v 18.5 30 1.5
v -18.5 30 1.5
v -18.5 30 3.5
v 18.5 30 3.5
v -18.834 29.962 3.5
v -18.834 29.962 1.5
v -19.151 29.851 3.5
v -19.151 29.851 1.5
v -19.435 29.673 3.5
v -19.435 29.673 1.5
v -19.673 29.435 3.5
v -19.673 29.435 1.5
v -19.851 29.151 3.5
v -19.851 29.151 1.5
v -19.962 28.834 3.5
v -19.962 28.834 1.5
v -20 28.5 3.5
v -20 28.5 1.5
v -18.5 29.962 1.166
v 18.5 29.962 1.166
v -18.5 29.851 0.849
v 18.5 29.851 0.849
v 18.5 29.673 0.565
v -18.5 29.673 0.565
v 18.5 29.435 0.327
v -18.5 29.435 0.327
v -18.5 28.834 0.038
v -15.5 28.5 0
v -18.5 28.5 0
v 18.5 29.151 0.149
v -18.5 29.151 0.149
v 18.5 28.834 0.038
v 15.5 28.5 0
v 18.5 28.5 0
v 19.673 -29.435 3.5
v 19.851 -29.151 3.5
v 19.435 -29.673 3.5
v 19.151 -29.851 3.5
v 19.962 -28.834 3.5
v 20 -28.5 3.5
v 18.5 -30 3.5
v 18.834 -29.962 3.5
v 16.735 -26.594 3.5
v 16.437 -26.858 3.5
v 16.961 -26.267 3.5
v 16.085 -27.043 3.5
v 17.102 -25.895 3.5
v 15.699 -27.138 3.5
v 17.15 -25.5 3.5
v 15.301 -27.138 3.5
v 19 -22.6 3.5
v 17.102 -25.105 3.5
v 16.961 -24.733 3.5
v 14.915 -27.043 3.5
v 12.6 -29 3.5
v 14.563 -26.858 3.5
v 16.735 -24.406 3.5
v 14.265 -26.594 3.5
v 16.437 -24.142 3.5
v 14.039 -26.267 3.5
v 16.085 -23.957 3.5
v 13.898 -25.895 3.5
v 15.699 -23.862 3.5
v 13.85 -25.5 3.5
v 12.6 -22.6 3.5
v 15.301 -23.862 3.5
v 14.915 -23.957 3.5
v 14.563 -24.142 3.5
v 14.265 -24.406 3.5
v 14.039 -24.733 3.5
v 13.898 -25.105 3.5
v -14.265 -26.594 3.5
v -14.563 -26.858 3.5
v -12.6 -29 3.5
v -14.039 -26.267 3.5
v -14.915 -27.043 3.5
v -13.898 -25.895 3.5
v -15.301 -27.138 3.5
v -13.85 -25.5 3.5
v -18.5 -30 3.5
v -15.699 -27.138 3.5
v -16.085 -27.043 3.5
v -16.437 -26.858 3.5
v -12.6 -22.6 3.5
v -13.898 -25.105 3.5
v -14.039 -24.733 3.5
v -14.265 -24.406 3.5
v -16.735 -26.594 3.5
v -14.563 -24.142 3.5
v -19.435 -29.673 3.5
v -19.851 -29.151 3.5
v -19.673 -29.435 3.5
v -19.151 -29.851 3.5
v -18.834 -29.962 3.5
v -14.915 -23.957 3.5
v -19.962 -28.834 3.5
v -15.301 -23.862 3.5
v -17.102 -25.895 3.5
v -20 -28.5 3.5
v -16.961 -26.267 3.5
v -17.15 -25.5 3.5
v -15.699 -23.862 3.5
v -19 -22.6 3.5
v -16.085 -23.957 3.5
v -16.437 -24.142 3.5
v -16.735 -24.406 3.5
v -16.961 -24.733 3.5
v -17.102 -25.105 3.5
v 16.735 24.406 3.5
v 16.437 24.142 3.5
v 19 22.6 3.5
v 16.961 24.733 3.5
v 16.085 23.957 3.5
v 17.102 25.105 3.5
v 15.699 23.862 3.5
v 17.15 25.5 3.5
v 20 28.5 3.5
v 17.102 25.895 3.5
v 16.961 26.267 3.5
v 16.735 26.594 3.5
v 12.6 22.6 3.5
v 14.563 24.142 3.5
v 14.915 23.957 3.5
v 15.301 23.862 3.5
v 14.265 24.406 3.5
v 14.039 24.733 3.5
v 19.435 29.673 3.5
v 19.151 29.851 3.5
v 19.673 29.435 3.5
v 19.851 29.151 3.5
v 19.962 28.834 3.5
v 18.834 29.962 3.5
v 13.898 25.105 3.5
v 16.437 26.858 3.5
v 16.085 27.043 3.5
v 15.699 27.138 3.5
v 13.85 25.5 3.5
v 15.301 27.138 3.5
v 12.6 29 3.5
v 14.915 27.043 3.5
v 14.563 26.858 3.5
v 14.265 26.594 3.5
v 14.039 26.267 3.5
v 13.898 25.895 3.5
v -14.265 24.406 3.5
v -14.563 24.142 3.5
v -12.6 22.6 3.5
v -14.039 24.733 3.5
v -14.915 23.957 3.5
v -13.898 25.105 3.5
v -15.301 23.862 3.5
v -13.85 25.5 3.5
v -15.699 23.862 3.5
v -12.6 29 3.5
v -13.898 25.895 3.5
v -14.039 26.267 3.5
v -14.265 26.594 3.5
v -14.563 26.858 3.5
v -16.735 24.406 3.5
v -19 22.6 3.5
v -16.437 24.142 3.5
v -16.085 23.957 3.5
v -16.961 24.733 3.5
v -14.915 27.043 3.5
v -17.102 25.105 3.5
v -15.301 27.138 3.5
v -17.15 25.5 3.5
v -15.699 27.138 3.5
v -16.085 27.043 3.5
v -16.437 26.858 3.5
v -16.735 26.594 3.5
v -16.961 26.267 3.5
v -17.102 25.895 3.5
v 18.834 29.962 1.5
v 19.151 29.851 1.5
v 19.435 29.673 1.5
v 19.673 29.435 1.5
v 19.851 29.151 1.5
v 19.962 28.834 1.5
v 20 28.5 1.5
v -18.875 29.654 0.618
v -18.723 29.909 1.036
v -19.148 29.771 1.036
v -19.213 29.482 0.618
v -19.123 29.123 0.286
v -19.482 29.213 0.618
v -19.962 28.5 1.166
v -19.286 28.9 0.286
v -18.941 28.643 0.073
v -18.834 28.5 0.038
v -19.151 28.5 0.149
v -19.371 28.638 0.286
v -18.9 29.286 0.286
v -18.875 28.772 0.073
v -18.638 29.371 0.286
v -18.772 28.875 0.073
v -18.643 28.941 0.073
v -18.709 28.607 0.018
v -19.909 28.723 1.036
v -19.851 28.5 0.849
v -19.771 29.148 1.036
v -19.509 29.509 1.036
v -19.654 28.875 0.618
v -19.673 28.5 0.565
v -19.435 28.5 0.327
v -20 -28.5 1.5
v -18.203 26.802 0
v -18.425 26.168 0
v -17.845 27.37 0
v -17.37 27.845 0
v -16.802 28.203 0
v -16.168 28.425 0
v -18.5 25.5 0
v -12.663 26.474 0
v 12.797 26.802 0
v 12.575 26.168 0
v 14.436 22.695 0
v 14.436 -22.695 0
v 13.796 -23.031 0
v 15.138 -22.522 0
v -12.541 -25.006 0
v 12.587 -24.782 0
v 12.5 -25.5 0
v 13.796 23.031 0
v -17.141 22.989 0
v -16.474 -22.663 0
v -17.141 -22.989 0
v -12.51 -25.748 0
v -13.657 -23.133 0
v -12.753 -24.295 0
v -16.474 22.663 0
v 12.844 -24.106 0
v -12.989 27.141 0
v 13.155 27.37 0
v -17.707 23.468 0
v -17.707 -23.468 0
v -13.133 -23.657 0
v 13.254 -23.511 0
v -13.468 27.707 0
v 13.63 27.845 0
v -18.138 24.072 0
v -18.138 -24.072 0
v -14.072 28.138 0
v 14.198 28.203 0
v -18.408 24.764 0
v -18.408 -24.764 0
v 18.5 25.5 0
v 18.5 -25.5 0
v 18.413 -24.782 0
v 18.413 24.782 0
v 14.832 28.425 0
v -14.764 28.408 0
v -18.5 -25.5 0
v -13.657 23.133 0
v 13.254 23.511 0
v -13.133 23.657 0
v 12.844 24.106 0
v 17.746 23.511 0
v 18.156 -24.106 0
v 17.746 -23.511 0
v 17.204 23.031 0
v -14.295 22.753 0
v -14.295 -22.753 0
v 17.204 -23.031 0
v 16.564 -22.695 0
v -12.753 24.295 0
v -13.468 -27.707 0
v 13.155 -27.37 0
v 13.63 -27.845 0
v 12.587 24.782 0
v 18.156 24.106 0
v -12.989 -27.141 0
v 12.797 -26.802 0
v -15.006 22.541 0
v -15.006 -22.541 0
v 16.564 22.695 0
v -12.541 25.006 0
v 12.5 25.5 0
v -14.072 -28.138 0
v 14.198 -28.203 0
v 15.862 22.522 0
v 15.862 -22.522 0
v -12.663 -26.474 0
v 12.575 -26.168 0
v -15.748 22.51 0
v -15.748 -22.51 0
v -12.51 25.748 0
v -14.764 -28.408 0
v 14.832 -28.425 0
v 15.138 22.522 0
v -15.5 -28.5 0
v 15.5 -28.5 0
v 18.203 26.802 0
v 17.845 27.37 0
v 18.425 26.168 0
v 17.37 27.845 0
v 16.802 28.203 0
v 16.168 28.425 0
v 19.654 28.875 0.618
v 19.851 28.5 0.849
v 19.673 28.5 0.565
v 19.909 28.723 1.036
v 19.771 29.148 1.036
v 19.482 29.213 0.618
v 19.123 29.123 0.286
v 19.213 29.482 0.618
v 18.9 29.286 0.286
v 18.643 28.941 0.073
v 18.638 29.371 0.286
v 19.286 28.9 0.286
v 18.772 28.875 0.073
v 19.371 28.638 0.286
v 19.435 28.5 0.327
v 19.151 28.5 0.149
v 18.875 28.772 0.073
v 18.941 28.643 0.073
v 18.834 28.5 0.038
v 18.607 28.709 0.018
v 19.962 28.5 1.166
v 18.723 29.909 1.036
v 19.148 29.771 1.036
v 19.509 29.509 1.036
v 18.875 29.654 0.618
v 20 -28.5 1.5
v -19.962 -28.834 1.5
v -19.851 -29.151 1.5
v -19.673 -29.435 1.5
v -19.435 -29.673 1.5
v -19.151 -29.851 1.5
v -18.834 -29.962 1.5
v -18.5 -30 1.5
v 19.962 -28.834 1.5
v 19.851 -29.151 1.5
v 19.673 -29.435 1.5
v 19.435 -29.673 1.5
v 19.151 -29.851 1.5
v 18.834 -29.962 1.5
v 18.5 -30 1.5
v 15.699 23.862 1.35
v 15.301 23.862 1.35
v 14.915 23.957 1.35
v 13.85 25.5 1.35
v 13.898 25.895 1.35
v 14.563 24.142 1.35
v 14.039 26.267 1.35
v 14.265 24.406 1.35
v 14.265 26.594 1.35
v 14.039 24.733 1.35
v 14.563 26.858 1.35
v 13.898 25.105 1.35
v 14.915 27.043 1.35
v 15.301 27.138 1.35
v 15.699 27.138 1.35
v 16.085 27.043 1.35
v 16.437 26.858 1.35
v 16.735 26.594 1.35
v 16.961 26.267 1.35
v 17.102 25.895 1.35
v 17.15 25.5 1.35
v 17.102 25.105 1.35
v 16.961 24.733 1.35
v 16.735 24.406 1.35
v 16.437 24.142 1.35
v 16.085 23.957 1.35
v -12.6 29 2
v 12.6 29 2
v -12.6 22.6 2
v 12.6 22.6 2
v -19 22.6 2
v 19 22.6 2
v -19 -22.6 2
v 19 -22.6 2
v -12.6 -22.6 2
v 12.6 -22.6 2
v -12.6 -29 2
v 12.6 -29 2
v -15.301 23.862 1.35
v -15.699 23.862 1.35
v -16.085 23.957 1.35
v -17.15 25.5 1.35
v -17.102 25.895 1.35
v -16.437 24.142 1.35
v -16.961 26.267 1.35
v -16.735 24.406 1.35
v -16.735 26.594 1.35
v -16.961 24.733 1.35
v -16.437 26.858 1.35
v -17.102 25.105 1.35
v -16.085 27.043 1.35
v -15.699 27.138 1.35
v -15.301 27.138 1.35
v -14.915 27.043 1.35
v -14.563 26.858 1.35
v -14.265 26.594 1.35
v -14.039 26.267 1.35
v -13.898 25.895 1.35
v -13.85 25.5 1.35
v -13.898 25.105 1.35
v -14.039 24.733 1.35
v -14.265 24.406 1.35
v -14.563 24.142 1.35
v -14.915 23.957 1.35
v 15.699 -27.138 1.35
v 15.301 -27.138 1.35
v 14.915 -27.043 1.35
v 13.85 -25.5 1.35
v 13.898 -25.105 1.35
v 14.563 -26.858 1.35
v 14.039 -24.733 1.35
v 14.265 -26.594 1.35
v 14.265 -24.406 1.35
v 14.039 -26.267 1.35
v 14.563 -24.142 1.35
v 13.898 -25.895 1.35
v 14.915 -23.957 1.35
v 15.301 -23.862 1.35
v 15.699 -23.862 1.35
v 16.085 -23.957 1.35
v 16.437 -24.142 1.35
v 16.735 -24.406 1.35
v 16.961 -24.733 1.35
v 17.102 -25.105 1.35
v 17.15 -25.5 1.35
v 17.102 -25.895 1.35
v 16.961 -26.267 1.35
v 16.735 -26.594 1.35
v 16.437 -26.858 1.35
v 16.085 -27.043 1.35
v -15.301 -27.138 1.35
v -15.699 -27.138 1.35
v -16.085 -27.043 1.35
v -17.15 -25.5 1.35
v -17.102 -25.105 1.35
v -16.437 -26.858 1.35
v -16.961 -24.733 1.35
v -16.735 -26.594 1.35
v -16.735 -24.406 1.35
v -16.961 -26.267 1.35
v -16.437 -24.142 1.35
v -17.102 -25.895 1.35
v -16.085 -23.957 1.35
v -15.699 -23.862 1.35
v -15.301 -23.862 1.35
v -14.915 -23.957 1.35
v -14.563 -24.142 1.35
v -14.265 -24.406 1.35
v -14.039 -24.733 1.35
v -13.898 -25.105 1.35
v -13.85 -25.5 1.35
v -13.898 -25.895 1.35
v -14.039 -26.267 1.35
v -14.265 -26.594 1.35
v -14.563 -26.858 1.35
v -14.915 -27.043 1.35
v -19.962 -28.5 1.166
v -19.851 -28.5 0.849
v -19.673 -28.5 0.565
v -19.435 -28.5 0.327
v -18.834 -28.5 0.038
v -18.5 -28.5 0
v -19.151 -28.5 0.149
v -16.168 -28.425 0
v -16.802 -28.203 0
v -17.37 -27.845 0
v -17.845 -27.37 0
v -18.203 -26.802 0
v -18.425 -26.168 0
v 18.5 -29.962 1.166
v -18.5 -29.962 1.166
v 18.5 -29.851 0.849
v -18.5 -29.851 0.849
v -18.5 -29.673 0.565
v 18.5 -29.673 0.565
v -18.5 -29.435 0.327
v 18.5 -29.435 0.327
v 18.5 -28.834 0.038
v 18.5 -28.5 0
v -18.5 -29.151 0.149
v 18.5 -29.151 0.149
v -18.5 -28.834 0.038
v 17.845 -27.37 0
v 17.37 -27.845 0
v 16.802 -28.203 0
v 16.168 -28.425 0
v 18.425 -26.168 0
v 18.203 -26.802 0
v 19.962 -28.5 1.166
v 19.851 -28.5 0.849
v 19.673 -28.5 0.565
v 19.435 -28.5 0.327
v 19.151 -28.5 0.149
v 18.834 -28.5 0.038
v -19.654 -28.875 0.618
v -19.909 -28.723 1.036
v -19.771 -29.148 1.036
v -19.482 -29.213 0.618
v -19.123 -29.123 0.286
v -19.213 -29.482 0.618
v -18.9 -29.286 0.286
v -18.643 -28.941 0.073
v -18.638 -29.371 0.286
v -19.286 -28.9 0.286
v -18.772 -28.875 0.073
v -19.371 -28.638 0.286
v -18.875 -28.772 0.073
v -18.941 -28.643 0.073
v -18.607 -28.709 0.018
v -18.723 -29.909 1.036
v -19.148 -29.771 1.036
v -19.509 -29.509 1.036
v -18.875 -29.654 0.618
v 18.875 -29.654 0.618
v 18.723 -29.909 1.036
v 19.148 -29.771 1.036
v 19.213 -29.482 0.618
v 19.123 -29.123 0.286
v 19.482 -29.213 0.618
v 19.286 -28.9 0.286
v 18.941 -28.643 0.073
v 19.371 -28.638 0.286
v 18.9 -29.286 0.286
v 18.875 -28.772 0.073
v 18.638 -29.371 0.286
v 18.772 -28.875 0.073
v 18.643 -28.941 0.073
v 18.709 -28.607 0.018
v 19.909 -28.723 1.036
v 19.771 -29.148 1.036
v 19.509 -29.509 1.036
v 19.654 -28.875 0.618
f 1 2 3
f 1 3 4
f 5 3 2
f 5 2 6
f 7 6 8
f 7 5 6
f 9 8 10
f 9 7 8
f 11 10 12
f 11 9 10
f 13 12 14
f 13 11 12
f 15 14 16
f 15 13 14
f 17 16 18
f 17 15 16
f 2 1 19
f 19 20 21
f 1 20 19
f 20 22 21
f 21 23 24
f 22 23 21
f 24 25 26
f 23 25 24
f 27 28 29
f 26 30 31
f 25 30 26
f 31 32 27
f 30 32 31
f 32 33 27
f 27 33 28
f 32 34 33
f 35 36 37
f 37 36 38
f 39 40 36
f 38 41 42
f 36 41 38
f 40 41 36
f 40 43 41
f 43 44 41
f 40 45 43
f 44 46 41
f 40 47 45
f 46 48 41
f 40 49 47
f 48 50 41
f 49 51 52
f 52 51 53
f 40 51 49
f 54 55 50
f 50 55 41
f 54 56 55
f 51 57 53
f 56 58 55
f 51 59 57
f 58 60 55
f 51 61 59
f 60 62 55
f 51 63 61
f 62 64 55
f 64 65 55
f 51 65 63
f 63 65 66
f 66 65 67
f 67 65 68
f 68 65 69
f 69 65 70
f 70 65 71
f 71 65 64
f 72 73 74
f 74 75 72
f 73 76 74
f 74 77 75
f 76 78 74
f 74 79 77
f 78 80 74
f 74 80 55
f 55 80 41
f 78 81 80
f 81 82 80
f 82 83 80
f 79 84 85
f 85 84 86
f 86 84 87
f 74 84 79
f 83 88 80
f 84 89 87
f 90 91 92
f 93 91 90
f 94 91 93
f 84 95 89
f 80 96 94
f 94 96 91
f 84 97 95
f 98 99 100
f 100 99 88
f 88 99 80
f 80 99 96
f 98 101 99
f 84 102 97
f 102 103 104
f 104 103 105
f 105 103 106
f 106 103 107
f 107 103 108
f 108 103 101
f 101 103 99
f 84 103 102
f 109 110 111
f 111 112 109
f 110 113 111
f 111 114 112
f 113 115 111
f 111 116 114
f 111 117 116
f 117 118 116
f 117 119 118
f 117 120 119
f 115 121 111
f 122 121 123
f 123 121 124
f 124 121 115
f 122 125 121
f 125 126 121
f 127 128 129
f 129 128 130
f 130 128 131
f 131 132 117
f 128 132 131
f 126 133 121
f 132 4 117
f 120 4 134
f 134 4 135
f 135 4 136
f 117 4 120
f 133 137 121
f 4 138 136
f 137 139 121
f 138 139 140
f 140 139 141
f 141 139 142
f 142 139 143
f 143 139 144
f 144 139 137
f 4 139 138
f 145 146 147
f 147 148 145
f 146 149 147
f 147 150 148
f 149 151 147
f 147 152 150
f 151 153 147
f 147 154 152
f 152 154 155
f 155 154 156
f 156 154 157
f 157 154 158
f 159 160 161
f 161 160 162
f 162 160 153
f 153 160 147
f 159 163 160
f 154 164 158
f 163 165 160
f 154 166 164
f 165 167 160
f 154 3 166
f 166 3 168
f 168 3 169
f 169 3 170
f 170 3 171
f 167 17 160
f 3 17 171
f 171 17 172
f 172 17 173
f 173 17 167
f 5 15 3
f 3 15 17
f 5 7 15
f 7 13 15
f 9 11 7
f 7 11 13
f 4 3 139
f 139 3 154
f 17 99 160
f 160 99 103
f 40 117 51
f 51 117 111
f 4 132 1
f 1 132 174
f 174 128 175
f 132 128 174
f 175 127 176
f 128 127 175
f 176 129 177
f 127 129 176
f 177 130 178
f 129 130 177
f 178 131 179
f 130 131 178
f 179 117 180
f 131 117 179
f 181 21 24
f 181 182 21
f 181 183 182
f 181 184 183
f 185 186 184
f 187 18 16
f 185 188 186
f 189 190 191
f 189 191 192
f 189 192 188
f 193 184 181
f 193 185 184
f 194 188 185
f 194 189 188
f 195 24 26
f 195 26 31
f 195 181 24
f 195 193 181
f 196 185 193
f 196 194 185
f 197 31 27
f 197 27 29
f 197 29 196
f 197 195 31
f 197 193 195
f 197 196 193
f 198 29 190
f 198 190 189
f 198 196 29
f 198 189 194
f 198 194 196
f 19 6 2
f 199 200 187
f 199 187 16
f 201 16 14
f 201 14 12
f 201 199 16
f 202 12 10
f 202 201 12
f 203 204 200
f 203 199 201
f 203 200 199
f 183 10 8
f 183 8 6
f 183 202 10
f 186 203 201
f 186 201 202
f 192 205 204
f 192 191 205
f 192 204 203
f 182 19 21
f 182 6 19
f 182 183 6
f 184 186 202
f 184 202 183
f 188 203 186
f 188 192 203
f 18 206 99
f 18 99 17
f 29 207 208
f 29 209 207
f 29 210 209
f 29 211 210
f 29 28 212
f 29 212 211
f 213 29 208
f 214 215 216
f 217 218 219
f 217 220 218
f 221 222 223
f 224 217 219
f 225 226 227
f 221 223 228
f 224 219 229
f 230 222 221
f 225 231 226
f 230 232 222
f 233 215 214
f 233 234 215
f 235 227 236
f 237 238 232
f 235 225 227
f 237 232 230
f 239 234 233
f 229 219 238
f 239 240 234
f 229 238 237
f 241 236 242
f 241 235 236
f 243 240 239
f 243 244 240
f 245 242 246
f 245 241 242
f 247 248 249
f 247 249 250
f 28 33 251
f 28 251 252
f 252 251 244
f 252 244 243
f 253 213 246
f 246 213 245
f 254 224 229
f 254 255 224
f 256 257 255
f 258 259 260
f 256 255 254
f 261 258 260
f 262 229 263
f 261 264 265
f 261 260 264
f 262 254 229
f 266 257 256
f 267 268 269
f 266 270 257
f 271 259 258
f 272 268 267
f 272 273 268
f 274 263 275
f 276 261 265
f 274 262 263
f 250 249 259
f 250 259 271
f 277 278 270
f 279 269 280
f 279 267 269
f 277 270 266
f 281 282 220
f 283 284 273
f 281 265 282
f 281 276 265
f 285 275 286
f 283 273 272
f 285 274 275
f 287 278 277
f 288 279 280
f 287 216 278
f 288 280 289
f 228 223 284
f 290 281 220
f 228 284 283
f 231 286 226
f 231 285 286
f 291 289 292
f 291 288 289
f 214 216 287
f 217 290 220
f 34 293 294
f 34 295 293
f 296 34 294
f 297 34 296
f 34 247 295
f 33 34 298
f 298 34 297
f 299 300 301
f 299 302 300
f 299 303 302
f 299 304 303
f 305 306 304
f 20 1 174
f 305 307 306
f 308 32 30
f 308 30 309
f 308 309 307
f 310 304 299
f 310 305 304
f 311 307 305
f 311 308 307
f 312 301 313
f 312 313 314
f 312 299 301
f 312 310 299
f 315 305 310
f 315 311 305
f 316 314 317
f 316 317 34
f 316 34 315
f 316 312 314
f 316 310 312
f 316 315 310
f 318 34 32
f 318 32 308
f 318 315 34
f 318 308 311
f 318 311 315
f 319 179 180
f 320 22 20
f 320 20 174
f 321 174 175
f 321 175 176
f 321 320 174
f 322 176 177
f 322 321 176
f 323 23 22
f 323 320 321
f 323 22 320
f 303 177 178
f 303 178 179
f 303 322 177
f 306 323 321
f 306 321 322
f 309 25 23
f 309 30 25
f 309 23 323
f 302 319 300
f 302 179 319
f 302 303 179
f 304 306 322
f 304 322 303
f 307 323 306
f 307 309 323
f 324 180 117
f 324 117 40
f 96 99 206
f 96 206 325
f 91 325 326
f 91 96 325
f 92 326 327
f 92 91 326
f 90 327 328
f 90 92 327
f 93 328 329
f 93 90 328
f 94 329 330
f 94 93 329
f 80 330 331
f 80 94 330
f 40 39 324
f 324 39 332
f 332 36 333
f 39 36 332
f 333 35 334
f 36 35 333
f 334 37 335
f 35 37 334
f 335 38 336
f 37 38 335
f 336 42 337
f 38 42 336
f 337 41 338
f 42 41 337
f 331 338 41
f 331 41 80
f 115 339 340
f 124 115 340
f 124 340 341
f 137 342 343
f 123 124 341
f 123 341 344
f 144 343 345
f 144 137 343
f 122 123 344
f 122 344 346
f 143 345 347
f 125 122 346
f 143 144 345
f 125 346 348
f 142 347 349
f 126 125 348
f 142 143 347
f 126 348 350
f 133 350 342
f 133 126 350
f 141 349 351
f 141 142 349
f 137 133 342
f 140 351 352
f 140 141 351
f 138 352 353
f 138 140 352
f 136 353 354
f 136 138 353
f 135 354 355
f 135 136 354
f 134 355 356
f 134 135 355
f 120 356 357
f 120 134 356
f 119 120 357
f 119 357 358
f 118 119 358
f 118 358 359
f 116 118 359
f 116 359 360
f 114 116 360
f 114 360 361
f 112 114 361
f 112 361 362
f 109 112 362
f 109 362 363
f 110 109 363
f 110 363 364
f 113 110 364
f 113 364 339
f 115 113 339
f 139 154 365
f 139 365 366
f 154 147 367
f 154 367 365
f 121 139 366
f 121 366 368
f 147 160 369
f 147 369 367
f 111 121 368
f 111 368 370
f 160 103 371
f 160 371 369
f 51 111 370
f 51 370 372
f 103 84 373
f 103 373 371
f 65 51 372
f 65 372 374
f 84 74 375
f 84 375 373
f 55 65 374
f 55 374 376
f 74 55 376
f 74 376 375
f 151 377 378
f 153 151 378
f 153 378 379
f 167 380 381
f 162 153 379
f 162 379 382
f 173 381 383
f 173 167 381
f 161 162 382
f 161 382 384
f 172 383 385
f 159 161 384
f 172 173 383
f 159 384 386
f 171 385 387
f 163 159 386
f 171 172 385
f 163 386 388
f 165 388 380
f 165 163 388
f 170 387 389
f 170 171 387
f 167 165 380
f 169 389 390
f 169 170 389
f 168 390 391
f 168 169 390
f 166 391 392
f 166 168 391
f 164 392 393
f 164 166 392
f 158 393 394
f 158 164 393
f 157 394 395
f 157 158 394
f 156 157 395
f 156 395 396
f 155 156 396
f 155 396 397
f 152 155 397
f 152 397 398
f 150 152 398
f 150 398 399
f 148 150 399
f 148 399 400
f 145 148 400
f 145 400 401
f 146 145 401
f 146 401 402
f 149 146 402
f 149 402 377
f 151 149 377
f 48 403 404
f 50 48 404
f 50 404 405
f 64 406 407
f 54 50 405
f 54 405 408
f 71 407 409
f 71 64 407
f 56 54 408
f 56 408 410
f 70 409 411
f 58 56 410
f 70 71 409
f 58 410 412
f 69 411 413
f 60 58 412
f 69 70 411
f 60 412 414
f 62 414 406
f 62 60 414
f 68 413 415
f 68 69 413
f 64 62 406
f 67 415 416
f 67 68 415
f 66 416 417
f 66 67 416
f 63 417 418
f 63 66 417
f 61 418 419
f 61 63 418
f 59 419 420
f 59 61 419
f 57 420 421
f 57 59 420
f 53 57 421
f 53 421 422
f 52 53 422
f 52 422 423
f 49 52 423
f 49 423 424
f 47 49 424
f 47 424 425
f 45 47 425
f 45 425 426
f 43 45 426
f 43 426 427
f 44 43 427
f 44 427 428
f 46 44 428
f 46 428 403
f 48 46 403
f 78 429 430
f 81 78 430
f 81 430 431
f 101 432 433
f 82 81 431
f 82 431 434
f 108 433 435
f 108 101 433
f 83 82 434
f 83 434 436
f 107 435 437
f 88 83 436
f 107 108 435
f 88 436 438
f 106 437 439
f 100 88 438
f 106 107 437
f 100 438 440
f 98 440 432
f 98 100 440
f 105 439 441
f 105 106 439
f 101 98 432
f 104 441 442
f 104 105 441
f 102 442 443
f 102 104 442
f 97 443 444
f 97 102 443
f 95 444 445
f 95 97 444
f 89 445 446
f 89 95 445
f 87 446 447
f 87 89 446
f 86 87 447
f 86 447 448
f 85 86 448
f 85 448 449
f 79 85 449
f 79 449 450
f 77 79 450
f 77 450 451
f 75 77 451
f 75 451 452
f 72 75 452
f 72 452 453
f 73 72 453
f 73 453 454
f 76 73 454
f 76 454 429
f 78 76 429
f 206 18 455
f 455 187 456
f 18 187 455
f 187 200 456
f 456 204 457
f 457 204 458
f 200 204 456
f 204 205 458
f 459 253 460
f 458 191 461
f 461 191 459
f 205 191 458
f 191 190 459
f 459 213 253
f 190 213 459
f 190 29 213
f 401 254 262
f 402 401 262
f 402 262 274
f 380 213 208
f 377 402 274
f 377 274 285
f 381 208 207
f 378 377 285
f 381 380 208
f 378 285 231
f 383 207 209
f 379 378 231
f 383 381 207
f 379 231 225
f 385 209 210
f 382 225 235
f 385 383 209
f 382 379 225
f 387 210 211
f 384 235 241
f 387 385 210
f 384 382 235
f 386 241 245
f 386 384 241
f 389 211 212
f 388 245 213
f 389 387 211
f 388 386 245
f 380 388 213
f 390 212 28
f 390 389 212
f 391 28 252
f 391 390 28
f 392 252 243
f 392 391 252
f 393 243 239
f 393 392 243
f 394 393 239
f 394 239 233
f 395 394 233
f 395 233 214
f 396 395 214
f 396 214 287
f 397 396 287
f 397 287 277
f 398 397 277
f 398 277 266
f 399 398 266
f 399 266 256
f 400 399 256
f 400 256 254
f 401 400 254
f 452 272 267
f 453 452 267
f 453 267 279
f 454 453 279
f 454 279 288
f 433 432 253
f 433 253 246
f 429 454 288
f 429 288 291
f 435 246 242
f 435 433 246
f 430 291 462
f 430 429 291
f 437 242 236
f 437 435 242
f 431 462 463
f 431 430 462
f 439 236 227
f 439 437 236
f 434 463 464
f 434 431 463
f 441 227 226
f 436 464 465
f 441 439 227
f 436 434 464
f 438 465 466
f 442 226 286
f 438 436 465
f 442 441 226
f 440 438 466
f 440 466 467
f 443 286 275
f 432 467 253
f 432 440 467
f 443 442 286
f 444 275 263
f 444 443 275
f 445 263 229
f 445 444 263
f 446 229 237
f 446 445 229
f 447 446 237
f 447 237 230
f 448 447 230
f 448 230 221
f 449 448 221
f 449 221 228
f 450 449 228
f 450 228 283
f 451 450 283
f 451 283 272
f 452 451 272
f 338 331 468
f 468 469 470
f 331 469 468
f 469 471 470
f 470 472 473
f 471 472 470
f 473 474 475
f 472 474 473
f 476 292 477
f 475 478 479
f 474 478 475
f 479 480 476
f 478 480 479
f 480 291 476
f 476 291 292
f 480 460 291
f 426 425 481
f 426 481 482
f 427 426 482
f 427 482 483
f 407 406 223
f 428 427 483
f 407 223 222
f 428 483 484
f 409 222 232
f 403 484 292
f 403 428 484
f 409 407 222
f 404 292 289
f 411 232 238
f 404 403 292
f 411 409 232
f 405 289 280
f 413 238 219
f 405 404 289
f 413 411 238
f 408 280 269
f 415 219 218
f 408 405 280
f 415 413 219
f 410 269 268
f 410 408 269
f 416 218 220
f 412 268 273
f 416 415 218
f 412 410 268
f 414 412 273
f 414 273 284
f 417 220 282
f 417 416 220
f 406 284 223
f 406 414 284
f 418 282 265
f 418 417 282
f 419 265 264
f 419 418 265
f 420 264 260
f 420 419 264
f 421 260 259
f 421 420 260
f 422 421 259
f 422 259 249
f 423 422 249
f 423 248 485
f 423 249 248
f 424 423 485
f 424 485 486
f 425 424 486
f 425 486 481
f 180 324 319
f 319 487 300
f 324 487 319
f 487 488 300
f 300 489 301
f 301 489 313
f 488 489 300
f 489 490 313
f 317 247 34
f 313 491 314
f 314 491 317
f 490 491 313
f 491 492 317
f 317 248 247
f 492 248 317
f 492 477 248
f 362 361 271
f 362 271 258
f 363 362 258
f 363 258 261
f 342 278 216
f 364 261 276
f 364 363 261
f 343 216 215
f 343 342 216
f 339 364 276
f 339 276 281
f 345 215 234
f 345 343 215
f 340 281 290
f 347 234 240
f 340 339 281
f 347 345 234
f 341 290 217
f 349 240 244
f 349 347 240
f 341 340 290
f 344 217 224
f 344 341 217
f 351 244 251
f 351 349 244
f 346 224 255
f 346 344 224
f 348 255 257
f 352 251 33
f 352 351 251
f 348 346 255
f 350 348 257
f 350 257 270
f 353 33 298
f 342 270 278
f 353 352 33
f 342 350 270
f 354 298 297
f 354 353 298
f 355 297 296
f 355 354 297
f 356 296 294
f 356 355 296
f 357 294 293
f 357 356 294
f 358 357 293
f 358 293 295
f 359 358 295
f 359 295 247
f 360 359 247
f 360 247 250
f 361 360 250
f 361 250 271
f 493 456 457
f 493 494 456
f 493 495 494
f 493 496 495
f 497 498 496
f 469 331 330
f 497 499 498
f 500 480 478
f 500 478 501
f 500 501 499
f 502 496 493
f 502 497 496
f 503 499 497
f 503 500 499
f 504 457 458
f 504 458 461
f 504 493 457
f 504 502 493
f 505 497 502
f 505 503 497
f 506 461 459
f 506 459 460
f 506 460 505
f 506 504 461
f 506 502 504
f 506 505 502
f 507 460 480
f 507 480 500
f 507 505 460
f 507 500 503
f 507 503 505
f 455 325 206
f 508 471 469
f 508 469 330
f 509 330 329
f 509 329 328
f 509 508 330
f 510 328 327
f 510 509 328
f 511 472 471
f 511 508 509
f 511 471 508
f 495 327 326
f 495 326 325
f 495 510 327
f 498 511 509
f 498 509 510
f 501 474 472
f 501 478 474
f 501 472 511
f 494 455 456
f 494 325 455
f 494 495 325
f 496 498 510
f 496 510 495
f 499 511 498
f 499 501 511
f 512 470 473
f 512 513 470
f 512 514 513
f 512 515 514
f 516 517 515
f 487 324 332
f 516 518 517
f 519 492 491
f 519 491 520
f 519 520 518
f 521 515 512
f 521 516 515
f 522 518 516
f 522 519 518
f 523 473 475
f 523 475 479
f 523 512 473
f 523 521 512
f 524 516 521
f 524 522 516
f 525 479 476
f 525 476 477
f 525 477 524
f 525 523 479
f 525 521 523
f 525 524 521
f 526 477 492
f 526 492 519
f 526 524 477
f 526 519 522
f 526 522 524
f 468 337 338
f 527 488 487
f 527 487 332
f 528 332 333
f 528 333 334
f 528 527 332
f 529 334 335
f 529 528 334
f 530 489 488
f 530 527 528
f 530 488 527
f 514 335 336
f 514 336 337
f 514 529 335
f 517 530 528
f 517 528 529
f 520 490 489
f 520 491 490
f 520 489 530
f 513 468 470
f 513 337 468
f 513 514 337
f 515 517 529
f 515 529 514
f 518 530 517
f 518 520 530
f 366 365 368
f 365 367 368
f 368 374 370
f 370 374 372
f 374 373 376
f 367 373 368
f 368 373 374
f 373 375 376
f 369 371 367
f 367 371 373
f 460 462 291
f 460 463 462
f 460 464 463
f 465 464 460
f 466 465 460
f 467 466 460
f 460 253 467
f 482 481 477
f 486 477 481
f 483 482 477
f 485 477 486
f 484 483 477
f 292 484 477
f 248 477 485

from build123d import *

# Parameters (mm, degrees)
COPYSKETCH003_W  = 40
COPYSKETCH003_H  = 60
PAD_DEPTH        = 3.5
POCKET_DEPTH     = 1.5
FILLET_R         = 1.5
FILLET001_R      = 1.5
HOLE_D           = 3.3
HOLE_DEPTH       = 25
HOLE_CSINK_D     = 6
HOLE_CSINK_ANGLE = 90


with BuildPart() as part:
    # CopySketch003 → Pad (new body)
    with BuildSketch(Plane.XY):
        Rectangle(COPYSKETCH003_W, COPYSKETCH003_H)
    extrude(amount=PAD_DEPTH)

    # CopySketch002 → Pocket (cut)
    with BuildSketch(Plane.XY.offset(3.5)):
        Polygon((-12.6, 29), (12.6, 29), (12.6, 22.6), (19, 22.6), (19, -22.6), (12.6, -22.6), (12.6, -29), (-12.6, -29), (-12.6, -22.6), (-19, -22.6), (-19, 22.6), (-12.6, 22.6), align=None)
    extrude(amount=-POCKET_DEPTH, mode=Mode.SUBTRACT)

    # Fillet
    fillet_edges = [part.edges().sort_by_distance(p)[0] for p in [
        (20, -30, 1.75),
        (-20, -30, 1.75),
        (20, 30, 1.75),
        (-20, 30, 1.75),
    ]]
    fillet(fillet_edges, radius=FILLET_R)

    # Fillet001
    fillet001_edges = [part.edges().sort_by_distance(p)[0] for p in [
        (0, 30, 0),
        (-19.56066, 29.56066, 0),
        (19.56066, 29.56066, 0),
        (-20, 0, 0),
        (20, 0, 0),
        (-19.56066, -29.56066, 0),
        (19.56066, -29.56066, 0),
        (0, -30, 0),
    ]]
    fillet(fillet001_edges, radius=FILLET001_R)

    # Hole
    with Locations(Plane(origin=(0, 0, 0), x_dir=(1, 0, 0), z_dir=(0, 0, -1))):
        with Locations((15.5, 25.5), (15.5, -25.5), (-15.5, -25.5), (-15.5, 25.5)):
            CounterSinkHole(HOLE_D / 2, HOLE_CSINK_D / 2, depth=HOLE_DEPTH, counter_sink_angle=HOLE_CSINK_ANGLE)


solid = part.part
